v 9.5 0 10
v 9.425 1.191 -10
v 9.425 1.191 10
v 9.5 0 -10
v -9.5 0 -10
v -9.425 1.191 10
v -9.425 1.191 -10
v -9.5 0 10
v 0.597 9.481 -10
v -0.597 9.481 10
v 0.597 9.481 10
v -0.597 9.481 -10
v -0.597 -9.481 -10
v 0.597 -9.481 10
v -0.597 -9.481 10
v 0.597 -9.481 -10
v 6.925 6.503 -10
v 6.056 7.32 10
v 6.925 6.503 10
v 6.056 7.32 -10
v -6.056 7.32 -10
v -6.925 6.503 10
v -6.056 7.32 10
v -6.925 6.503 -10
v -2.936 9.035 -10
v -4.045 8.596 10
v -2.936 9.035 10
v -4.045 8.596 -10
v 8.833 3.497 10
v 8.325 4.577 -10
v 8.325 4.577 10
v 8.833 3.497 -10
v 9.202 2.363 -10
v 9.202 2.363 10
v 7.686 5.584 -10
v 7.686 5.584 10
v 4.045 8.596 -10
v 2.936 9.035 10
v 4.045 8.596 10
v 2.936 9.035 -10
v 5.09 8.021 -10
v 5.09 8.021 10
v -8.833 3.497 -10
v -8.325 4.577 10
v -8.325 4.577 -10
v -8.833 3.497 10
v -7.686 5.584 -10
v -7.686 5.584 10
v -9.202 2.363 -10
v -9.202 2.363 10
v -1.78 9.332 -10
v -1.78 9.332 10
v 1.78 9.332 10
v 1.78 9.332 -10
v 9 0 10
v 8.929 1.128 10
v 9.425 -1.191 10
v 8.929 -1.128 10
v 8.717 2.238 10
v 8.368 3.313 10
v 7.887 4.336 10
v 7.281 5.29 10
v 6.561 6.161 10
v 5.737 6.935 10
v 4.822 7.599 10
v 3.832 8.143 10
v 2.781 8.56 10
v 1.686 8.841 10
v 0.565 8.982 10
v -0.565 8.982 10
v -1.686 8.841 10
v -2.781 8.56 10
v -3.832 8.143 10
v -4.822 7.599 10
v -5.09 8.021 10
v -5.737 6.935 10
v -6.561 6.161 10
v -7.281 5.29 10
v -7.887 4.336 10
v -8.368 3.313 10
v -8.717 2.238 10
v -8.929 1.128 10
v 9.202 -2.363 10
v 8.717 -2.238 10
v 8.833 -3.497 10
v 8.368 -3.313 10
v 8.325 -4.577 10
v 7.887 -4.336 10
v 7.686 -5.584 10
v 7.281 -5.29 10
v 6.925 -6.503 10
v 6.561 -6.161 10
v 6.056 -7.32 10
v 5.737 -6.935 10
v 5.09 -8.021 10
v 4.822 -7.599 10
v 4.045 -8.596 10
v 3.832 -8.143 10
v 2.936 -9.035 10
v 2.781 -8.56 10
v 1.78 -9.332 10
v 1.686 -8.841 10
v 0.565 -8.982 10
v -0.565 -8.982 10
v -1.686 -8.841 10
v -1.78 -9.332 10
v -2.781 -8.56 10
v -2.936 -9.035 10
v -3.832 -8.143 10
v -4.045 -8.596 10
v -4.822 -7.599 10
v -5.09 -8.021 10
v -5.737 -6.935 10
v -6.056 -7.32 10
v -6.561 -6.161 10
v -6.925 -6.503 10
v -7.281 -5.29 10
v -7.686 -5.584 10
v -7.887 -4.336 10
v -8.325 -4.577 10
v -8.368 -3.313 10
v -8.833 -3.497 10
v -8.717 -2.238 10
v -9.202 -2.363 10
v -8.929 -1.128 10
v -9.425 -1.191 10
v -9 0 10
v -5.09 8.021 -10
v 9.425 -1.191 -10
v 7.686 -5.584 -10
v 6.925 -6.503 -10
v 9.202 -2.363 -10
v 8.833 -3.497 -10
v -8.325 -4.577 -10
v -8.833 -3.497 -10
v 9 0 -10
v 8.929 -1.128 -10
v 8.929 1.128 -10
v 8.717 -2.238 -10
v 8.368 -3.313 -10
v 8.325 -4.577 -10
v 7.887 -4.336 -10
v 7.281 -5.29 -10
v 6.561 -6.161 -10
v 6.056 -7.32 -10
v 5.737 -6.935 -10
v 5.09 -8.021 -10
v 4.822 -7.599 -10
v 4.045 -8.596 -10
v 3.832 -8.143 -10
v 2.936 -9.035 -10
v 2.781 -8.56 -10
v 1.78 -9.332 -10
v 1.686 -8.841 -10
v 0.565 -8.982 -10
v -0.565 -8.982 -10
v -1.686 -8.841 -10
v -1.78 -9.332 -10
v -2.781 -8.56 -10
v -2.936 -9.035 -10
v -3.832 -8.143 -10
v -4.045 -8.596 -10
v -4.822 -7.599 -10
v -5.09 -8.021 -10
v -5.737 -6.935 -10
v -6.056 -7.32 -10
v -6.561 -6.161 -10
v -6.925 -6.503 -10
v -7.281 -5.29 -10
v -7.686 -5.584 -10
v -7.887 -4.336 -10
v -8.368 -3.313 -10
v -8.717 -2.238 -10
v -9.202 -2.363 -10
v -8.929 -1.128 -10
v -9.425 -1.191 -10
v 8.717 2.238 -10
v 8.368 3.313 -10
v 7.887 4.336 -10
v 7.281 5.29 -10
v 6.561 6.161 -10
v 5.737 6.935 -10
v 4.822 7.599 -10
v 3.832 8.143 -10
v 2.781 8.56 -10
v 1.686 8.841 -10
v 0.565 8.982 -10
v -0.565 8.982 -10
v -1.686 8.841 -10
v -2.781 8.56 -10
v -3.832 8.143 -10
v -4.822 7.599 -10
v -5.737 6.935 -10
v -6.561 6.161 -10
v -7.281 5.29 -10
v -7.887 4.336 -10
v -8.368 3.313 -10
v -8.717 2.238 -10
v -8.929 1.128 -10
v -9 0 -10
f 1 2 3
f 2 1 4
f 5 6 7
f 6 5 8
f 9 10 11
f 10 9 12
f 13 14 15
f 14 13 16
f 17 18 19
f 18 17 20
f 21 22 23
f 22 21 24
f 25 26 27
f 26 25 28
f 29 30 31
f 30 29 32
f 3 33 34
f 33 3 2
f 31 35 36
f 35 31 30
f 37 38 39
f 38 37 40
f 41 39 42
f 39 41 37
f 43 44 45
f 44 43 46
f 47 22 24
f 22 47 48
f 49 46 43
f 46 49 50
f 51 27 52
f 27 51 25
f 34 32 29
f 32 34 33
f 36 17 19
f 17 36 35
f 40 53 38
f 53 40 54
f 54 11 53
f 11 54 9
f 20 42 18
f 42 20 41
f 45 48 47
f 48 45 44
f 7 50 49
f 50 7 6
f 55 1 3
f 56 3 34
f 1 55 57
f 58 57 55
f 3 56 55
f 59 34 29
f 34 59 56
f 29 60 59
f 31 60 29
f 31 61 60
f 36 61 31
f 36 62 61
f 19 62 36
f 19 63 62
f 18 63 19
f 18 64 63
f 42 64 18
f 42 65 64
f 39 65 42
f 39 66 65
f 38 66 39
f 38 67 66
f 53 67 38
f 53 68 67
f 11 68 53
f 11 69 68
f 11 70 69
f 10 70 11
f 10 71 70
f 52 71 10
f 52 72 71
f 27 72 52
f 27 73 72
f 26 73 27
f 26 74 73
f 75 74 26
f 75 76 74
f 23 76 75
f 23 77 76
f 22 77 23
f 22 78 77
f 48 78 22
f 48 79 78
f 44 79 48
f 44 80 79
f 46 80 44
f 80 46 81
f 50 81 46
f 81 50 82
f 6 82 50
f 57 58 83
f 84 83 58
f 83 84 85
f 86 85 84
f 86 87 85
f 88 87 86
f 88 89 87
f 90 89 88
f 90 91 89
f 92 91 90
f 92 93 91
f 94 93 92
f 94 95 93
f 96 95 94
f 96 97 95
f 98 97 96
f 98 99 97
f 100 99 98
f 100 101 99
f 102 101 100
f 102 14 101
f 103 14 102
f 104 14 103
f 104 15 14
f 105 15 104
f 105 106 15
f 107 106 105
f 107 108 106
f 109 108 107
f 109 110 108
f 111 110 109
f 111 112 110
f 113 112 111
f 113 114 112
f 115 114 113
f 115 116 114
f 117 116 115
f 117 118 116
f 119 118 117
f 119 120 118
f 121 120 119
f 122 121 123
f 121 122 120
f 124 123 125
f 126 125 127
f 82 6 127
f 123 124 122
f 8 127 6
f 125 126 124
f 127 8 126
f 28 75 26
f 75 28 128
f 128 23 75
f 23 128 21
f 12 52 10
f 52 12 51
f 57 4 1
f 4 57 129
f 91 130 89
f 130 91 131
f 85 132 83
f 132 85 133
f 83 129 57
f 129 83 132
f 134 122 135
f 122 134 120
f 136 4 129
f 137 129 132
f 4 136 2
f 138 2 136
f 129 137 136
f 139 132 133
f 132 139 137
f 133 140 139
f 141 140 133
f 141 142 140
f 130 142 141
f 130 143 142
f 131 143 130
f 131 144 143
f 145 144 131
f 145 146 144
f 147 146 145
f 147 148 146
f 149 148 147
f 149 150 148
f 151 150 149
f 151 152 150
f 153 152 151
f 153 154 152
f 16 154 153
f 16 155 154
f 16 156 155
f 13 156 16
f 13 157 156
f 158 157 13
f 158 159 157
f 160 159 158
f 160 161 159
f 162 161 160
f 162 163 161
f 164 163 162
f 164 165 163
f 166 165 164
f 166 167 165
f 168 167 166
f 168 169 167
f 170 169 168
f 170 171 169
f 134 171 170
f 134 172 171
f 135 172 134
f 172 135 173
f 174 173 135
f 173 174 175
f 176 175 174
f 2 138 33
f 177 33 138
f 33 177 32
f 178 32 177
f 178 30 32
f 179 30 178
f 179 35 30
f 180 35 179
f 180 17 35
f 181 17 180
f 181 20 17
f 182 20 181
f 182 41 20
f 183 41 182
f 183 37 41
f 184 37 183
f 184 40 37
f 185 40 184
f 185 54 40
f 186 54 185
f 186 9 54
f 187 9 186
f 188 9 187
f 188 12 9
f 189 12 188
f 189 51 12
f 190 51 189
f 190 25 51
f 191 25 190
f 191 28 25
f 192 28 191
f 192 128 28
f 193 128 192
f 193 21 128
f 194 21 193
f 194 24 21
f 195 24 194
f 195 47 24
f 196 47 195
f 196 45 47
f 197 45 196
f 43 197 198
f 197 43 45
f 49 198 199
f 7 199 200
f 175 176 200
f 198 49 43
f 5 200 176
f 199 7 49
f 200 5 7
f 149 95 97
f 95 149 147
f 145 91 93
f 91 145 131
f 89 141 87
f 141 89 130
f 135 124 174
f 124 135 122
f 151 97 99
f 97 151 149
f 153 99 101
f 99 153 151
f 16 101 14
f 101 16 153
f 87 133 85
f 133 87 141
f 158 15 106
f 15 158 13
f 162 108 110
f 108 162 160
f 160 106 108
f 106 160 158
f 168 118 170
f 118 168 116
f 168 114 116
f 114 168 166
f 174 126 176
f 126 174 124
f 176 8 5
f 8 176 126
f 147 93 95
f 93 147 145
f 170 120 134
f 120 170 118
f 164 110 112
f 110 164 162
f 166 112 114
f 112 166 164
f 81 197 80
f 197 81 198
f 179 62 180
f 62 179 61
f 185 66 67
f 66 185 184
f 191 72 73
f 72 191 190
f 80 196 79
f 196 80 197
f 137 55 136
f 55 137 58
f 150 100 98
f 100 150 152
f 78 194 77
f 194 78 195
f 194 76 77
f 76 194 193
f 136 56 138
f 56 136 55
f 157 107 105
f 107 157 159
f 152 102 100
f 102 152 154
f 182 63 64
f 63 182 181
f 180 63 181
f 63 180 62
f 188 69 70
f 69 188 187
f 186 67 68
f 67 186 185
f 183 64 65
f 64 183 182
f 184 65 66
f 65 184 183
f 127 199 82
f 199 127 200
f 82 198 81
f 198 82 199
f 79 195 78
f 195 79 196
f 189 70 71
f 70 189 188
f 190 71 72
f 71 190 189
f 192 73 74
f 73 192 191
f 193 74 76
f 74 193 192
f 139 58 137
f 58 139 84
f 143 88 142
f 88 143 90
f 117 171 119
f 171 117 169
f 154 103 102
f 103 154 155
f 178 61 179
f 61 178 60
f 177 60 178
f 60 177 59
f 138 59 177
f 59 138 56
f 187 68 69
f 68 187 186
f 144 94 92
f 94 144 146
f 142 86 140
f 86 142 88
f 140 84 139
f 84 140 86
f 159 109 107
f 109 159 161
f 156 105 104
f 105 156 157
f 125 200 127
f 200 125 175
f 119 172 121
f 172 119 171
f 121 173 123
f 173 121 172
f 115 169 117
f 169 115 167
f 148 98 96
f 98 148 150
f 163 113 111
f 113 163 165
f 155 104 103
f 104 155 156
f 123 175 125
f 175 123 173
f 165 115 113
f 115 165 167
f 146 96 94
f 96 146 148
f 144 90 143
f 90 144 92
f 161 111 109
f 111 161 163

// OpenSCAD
$fn = 50;


difference() {
	union() {
		translate(v = [0, 0, -10.0000000000]) {
			cylinder(h = 20, r = 9.5000000000);
		}
	}
	union() {
		translate(v = [0, 0, -100.0000000000]) {
			cylinder(h = 200, r = 9);
		}
	}
}
